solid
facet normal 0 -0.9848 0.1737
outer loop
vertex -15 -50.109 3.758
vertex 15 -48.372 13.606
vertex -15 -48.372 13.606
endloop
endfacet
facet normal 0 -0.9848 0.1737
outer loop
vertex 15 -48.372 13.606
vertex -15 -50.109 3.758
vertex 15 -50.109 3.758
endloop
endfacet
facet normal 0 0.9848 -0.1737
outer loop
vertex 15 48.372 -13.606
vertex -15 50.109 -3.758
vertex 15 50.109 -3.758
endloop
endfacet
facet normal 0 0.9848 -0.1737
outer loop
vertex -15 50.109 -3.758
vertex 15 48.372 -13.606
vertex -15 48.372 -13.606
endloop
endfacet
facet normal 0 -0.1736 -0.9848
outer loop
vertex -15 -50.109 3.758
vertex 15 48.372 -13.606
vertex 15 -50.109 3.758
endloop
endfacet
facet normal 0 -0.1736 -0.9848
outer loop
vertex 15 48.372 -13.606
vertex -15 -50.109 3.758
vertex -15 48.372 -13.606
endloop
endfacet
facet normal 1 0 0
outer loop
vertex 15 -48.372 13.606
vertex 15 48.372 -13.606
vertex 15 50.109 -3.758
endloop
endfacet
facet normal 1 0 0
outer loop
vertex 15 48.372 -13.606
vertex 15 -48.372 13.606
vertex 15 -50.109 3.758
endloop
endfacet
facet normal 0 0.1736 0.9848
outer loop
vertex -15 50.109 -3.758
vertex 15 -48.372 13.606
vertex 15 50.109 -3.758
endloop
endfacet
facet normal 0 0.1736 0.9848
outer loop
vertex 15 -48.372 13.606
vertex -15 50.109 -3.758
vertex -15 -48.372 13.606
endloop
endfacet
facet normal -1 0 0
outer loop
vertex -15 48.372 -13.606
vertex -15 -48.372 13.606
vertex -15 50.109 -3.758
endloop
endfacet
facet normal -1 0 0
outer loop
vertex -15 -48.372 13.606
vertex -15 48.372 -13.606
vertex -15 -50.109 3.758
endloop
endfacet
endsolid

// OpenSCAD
rotate(80, [ 1, 0, 0 ]) 
cube([30, 10, 100], center = true);
